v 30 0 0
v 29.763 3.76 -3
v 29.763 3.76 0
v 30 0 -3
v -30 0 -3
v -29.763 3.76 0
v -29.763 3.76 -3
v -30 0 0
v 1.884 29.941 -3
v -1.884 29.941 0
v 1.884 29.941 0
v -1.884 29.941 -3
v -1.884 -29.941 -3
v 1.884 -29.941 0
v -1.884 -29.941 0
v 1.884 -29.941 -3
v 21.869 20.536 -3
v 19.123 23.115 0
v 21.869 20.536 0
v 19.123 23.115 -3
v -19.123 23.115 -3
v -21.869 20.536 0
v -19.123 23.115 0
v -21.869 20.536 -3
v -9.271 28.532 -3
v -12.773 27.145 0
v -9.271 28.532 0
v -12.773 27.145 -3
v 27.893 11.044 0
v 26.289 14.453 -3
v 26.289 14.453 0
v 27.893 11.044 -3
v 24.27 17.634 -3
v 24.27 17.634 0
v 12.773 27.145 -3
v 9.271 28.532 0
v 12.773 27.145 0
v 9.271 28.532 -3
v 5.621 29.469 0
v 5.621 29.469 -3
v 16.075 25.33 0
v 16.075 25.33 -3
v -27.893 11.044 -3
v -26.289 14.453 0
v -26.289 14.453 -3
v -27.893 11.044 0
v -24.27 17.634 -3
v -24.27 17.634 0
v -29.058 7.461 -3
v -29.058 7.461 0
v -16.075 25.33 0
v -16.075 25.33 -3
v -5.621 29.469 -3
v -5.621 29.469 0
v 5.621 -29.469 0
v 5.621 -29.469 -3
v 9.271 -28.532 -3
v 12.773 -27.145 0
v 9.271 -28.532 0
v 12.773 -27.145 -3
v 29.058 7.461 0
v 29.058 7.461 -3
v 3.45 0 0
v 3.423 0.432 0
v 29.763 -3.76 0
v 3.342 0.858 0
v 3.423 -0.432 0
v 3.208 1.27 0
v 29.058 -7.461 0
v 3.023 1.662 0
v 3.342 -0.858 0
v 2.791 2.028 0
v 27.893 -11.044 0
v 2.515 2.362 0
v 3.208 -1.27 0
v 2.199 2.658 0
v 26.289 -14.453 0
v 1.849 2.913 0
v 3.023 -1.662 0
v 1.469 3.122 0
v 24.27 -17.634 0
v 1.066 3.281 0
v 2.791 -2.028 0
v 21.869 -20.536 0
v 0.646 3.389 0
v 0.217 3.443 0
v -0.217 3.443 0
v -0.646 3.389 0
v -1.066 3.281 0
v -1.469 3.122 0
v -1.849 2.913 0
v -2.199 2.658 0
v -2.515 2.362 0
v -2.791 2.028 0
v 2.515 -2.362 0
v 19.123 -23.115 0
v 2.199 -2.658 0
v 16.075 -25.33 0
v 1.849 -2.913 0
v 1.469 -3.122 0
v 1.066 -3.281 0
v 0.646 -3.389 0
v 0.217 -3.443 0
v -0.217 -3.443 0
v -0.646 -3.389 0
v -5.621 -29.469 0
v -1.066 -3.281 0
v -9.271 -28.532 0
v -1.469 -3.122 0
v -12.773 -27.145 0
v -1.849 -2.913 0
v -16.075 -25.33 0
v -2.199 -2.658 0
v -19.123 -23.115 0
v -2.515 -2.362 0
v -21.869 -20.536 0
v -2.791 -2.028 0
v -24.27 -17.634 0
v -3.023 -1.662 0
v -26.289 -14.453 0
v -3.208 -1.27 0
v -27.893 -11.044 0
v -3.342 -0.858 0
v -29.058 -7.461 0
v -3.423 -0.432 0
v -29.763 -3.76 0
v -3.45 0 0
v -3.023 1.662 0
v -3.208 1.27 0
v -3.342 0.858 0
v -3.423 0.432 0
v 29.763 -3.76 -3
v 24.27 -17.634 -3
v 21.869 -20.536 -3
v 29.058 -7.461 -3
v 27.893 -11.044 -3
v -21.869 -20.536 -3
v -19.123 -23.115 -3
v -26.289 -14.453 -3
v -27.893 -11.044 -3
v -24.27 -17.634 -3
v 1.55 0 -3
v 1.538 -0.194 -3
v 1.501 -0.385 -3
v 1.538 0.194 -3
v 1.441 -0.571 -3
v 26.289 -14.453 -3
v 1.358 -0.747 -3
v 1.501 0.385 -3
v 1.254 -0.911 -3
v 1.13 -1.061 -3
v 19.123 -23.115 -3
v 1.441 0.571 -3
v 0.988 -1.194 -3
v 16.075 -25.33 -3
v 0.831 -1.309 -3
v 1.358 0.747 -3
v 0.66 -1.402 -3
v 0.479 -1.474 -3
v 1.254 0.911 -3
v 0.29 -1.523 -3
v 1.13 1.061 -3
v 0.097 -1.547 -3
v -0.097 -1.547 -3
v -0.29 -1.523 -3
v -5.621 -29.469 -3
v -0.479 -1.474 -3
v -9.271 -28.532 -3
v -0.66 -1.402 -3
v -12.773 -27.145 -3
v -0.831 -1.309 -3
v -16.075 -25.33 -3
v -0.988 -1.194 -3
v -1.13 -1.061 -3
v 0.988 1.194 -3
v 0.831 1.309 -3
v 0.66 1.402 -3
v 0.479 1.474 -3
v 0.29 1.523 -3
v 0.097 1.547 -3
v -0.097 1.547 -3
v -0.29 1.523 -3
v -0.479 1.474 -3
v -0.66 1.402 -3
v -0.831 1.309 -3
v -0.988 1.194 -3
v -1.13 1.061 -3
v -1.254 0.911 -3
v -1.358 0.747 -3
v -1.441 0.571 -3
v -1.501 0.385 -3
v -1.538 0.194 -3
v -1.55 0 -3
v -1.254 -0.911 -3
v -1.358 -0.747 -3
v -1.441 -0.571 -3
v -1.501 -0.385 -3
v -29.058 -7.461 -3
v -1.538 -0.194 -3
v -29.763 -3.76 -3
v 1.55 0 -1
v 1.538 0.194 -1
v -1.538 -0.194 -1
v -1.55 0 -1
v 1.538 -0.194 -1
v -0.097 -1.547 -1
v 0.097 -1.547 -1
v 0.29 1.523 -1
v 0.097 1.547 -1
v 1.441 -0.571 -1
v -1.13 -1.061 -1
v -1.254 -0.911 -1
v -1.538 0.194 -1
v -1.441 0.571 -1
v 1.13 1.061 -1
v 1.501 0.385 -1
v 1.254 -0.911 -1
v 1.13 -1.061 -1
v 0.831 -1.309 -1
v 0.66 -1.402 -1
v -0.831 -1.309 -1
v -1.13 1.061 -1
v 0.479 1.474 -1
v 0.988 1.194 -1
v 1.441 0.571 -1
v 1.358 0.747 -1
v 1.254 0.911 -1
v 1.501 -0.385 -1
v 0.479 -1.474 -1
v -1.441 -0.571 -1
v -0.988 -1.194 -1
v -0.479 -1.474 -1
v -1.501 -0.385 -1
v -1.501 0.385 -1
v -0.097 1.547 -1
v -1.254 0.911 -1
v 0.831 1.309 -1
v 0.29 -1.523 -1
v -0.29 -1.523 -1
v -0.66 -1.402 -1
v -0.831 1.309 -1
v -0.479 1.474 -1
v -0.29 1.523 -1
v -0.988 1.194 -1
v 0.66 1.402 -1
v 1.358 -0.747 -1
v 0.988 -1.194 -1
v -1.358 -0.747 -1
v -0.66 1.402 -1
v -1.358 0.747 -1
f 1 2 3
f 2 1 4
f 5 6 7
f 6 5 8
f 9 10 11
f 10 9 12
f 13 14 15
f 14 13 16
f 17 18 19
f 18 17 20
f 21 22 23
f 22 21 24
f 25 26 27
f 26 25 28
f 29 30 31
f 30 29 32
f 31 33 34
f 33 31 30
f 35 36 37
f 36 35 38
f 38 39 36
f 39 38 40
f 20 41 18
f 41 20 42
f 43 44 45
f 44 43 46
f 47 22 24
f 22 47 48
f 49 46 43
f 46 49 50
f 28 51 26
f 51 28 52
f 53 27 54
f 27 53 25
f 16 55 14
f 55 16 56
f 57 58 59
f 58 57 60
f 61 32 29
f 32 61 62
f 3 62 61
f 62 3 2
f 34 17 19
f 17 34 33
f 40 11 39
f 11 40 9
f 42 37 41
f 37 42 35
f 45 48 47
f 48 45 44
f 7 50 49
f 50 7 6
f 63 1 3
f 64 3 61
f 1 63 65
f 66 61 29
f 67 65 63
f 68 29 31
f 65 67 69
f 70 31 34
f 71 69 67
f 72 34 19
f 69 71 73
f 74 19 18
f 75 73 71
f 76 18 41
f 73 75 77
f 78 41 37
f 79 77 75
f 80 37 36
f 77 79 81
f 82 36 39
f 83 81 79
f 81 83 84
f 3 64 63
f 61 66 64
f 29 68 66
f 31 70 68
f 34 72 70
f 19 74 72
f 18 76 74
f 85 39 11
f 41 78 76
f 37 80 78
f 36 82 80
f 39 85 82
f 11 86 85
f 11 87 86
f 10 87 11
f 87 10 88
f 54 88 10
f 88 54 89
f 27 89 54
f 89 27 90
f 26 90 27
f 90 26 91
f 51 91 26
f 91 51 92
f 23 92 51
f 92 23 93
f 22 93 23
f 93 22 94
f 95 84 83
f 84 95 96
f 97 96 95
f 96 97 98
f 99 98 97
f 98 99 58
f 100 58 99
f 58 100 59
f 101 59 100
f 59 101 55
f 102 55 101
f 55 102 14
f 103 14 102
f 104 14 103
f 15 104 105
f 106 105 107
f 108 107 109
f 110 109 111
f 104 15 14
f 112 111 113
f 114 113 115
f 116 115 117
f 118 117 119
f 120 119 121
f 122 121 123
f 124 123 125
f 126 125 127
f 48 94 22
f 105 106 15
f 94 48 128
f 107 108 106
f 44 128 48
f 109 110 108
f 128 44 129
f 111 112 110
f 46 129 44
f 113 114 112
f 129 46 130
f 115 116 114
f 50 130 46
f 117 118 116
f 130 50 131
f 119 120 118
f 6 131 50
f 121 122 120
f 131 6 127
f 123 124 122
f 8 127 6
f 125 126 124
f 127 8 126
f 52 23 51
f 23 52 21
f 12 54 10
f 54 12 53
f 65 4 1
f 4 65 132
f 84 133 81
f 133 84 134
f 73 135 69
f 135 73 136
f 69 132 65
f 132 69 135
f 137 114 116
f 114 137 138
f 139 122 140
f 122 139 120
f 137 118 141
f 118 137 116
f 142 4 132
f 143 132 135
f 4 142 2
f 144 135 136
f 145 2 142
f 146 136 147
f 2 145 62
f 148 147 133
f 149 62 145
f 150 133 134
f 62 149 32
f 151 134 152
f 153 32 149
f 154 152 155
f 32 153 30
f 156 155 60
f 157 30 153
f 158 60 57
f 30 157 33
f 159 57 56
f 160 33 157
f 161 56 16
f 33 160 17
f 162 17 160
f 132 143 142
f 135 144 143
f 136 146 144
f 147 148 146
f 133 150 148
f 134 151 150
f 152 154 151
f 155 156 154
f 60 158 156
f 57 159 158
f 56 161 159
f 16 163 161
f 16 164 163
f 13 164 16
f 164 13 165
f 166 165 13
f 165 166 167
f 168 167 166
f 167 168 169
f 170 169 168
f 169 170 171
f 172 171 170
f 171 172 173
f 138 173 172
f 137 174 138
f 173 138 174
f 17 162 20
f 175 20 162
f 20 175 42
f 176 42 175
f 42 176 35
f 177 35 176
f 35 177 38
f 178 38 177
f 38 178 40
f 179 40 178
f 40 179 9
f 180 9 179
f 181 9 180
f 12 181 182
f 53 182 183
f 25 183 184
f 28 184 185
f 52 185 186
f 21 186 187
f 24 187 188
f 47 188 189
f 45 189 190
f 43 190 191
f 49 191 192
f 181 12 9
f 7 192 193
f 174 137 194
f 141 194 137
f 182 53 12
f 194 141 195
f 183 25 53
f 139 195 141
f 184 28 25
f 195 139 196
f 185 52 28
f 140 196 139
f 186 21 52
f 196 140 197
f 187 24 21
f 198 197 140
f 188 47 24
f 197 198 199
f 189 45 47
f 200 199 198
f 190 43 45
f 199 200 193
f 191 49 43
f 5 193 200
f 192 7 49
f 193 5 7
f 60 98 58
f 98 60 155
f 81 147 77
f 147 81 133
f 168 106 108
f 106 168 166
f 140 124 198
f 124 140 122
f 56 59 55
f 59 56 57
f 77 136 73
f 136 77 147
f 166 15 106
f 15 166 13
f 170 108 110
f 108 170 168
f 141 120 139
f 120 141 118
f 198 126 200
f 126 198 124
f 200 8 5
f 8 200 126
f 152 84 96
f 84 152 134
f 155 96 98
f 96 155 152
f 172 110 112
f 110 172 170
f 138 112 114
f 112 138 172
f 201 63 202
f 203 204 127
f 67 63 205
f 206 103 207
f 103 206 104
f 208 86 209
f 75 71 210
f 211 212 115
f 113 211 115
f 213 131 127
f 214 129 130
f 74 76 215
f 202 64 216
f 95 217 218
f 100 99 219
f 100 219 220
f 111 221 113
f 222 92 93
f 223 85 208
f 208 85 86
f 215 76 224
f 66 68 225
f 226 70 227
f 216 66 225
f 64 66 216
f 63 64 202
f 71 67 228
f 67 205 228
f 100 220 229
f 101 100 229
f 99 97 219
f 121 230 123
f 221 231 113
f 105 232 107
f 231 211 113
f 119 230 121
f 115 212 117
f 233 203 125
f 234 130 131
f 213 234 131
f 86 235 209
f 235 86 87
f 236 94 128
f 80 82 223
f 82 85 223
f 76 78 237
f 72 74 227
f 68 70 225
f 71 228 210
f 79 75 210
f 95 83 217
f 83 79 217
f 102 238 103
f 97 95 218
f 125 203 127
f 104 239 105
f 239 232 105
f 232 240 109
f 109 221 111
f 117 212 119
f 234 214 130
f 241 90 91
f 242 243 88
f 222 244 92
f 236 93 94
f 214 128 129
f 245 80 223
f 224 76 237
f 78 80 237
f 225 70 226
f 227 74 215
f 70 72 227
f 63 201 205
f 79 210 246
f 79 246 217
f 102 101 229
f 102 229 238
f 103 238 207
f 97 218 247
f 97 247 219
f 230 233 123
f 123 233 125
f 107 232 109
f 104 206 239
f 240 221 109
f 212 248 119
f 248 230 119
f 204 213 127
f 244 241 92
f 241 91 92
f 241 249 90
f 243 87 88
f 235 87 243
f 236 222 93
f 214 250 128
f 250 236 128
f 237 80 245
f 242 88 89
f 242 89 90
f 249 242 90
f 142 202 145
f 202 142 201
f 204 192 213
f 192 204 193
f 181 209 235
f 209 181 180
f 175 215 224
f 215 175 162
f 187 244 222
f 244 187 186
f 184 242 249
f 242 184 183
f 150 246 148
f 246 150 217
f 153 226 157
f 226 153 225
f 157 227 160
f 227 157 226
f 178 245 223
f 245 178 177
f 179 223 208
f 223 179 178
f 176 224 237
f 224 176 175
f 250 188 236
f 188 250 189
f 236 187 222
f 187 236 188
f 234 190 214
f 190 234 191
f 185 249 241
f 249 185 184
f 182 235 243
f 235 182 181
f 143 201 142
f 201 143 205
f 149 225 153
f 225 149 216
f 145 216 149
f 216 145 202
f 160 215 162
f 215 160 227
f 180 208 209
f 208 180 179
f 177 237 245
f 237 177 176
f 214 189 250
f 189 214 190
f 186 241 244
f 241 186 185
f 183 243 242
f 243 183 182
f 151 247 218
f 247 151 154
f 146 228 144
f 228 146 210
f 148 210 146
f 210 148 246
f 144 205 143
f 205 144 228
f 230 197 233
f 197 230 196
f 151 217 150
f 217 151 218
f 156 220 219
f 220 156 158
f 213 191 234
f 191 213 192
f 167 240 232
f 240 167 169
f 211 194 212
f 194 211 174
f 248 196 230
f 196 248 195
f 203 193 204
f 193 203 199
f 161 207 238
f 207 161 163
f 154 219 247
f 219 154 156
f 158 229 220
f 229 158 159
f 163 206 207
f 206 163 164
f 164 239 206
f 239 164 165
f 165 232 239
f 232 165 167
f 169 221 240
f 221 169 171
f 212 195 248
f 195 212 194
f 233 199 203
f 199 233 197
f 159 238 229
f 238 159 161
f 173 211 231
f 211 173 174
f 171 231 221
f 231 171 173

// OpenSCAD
$fn = 50;


difference() {
	union() {
		translate(v = [0, 0, -3.0000000000]) {
			cylinder(h = 3, r = 30.0000000000);
		}
		translate(v = [0, 0, -3.0000000000]) {
			cylinder(h = 3, r = 2.8750000000);
		}
	}
	union() {
		translate(v = [0, 0, 0]) {
			rotate(a = [0, 0, 0]) {
				difference() {
					union() {
						translate(v = [0, 0, -3.0000000000]) {
							cylinder(h = 3, r = 1.2500000000);
						}
						translate(v = [0, 0, -1.0000000000]) {
							cylinder(h = 1.0000000000, r1 = 1.5500000000, r2 = 3.4500000000);
						}
						translate(v = [0, 0, -3.0000000000]) {
							cylinder(h = 3, r = 1.5500000000);
						}
						translate(v = [0, 0, -3.0000000000]) {
							cylinder(h = 3, r = 1.2500000000);
						}
					}
					union();
				}
			}
		}
	}
}
